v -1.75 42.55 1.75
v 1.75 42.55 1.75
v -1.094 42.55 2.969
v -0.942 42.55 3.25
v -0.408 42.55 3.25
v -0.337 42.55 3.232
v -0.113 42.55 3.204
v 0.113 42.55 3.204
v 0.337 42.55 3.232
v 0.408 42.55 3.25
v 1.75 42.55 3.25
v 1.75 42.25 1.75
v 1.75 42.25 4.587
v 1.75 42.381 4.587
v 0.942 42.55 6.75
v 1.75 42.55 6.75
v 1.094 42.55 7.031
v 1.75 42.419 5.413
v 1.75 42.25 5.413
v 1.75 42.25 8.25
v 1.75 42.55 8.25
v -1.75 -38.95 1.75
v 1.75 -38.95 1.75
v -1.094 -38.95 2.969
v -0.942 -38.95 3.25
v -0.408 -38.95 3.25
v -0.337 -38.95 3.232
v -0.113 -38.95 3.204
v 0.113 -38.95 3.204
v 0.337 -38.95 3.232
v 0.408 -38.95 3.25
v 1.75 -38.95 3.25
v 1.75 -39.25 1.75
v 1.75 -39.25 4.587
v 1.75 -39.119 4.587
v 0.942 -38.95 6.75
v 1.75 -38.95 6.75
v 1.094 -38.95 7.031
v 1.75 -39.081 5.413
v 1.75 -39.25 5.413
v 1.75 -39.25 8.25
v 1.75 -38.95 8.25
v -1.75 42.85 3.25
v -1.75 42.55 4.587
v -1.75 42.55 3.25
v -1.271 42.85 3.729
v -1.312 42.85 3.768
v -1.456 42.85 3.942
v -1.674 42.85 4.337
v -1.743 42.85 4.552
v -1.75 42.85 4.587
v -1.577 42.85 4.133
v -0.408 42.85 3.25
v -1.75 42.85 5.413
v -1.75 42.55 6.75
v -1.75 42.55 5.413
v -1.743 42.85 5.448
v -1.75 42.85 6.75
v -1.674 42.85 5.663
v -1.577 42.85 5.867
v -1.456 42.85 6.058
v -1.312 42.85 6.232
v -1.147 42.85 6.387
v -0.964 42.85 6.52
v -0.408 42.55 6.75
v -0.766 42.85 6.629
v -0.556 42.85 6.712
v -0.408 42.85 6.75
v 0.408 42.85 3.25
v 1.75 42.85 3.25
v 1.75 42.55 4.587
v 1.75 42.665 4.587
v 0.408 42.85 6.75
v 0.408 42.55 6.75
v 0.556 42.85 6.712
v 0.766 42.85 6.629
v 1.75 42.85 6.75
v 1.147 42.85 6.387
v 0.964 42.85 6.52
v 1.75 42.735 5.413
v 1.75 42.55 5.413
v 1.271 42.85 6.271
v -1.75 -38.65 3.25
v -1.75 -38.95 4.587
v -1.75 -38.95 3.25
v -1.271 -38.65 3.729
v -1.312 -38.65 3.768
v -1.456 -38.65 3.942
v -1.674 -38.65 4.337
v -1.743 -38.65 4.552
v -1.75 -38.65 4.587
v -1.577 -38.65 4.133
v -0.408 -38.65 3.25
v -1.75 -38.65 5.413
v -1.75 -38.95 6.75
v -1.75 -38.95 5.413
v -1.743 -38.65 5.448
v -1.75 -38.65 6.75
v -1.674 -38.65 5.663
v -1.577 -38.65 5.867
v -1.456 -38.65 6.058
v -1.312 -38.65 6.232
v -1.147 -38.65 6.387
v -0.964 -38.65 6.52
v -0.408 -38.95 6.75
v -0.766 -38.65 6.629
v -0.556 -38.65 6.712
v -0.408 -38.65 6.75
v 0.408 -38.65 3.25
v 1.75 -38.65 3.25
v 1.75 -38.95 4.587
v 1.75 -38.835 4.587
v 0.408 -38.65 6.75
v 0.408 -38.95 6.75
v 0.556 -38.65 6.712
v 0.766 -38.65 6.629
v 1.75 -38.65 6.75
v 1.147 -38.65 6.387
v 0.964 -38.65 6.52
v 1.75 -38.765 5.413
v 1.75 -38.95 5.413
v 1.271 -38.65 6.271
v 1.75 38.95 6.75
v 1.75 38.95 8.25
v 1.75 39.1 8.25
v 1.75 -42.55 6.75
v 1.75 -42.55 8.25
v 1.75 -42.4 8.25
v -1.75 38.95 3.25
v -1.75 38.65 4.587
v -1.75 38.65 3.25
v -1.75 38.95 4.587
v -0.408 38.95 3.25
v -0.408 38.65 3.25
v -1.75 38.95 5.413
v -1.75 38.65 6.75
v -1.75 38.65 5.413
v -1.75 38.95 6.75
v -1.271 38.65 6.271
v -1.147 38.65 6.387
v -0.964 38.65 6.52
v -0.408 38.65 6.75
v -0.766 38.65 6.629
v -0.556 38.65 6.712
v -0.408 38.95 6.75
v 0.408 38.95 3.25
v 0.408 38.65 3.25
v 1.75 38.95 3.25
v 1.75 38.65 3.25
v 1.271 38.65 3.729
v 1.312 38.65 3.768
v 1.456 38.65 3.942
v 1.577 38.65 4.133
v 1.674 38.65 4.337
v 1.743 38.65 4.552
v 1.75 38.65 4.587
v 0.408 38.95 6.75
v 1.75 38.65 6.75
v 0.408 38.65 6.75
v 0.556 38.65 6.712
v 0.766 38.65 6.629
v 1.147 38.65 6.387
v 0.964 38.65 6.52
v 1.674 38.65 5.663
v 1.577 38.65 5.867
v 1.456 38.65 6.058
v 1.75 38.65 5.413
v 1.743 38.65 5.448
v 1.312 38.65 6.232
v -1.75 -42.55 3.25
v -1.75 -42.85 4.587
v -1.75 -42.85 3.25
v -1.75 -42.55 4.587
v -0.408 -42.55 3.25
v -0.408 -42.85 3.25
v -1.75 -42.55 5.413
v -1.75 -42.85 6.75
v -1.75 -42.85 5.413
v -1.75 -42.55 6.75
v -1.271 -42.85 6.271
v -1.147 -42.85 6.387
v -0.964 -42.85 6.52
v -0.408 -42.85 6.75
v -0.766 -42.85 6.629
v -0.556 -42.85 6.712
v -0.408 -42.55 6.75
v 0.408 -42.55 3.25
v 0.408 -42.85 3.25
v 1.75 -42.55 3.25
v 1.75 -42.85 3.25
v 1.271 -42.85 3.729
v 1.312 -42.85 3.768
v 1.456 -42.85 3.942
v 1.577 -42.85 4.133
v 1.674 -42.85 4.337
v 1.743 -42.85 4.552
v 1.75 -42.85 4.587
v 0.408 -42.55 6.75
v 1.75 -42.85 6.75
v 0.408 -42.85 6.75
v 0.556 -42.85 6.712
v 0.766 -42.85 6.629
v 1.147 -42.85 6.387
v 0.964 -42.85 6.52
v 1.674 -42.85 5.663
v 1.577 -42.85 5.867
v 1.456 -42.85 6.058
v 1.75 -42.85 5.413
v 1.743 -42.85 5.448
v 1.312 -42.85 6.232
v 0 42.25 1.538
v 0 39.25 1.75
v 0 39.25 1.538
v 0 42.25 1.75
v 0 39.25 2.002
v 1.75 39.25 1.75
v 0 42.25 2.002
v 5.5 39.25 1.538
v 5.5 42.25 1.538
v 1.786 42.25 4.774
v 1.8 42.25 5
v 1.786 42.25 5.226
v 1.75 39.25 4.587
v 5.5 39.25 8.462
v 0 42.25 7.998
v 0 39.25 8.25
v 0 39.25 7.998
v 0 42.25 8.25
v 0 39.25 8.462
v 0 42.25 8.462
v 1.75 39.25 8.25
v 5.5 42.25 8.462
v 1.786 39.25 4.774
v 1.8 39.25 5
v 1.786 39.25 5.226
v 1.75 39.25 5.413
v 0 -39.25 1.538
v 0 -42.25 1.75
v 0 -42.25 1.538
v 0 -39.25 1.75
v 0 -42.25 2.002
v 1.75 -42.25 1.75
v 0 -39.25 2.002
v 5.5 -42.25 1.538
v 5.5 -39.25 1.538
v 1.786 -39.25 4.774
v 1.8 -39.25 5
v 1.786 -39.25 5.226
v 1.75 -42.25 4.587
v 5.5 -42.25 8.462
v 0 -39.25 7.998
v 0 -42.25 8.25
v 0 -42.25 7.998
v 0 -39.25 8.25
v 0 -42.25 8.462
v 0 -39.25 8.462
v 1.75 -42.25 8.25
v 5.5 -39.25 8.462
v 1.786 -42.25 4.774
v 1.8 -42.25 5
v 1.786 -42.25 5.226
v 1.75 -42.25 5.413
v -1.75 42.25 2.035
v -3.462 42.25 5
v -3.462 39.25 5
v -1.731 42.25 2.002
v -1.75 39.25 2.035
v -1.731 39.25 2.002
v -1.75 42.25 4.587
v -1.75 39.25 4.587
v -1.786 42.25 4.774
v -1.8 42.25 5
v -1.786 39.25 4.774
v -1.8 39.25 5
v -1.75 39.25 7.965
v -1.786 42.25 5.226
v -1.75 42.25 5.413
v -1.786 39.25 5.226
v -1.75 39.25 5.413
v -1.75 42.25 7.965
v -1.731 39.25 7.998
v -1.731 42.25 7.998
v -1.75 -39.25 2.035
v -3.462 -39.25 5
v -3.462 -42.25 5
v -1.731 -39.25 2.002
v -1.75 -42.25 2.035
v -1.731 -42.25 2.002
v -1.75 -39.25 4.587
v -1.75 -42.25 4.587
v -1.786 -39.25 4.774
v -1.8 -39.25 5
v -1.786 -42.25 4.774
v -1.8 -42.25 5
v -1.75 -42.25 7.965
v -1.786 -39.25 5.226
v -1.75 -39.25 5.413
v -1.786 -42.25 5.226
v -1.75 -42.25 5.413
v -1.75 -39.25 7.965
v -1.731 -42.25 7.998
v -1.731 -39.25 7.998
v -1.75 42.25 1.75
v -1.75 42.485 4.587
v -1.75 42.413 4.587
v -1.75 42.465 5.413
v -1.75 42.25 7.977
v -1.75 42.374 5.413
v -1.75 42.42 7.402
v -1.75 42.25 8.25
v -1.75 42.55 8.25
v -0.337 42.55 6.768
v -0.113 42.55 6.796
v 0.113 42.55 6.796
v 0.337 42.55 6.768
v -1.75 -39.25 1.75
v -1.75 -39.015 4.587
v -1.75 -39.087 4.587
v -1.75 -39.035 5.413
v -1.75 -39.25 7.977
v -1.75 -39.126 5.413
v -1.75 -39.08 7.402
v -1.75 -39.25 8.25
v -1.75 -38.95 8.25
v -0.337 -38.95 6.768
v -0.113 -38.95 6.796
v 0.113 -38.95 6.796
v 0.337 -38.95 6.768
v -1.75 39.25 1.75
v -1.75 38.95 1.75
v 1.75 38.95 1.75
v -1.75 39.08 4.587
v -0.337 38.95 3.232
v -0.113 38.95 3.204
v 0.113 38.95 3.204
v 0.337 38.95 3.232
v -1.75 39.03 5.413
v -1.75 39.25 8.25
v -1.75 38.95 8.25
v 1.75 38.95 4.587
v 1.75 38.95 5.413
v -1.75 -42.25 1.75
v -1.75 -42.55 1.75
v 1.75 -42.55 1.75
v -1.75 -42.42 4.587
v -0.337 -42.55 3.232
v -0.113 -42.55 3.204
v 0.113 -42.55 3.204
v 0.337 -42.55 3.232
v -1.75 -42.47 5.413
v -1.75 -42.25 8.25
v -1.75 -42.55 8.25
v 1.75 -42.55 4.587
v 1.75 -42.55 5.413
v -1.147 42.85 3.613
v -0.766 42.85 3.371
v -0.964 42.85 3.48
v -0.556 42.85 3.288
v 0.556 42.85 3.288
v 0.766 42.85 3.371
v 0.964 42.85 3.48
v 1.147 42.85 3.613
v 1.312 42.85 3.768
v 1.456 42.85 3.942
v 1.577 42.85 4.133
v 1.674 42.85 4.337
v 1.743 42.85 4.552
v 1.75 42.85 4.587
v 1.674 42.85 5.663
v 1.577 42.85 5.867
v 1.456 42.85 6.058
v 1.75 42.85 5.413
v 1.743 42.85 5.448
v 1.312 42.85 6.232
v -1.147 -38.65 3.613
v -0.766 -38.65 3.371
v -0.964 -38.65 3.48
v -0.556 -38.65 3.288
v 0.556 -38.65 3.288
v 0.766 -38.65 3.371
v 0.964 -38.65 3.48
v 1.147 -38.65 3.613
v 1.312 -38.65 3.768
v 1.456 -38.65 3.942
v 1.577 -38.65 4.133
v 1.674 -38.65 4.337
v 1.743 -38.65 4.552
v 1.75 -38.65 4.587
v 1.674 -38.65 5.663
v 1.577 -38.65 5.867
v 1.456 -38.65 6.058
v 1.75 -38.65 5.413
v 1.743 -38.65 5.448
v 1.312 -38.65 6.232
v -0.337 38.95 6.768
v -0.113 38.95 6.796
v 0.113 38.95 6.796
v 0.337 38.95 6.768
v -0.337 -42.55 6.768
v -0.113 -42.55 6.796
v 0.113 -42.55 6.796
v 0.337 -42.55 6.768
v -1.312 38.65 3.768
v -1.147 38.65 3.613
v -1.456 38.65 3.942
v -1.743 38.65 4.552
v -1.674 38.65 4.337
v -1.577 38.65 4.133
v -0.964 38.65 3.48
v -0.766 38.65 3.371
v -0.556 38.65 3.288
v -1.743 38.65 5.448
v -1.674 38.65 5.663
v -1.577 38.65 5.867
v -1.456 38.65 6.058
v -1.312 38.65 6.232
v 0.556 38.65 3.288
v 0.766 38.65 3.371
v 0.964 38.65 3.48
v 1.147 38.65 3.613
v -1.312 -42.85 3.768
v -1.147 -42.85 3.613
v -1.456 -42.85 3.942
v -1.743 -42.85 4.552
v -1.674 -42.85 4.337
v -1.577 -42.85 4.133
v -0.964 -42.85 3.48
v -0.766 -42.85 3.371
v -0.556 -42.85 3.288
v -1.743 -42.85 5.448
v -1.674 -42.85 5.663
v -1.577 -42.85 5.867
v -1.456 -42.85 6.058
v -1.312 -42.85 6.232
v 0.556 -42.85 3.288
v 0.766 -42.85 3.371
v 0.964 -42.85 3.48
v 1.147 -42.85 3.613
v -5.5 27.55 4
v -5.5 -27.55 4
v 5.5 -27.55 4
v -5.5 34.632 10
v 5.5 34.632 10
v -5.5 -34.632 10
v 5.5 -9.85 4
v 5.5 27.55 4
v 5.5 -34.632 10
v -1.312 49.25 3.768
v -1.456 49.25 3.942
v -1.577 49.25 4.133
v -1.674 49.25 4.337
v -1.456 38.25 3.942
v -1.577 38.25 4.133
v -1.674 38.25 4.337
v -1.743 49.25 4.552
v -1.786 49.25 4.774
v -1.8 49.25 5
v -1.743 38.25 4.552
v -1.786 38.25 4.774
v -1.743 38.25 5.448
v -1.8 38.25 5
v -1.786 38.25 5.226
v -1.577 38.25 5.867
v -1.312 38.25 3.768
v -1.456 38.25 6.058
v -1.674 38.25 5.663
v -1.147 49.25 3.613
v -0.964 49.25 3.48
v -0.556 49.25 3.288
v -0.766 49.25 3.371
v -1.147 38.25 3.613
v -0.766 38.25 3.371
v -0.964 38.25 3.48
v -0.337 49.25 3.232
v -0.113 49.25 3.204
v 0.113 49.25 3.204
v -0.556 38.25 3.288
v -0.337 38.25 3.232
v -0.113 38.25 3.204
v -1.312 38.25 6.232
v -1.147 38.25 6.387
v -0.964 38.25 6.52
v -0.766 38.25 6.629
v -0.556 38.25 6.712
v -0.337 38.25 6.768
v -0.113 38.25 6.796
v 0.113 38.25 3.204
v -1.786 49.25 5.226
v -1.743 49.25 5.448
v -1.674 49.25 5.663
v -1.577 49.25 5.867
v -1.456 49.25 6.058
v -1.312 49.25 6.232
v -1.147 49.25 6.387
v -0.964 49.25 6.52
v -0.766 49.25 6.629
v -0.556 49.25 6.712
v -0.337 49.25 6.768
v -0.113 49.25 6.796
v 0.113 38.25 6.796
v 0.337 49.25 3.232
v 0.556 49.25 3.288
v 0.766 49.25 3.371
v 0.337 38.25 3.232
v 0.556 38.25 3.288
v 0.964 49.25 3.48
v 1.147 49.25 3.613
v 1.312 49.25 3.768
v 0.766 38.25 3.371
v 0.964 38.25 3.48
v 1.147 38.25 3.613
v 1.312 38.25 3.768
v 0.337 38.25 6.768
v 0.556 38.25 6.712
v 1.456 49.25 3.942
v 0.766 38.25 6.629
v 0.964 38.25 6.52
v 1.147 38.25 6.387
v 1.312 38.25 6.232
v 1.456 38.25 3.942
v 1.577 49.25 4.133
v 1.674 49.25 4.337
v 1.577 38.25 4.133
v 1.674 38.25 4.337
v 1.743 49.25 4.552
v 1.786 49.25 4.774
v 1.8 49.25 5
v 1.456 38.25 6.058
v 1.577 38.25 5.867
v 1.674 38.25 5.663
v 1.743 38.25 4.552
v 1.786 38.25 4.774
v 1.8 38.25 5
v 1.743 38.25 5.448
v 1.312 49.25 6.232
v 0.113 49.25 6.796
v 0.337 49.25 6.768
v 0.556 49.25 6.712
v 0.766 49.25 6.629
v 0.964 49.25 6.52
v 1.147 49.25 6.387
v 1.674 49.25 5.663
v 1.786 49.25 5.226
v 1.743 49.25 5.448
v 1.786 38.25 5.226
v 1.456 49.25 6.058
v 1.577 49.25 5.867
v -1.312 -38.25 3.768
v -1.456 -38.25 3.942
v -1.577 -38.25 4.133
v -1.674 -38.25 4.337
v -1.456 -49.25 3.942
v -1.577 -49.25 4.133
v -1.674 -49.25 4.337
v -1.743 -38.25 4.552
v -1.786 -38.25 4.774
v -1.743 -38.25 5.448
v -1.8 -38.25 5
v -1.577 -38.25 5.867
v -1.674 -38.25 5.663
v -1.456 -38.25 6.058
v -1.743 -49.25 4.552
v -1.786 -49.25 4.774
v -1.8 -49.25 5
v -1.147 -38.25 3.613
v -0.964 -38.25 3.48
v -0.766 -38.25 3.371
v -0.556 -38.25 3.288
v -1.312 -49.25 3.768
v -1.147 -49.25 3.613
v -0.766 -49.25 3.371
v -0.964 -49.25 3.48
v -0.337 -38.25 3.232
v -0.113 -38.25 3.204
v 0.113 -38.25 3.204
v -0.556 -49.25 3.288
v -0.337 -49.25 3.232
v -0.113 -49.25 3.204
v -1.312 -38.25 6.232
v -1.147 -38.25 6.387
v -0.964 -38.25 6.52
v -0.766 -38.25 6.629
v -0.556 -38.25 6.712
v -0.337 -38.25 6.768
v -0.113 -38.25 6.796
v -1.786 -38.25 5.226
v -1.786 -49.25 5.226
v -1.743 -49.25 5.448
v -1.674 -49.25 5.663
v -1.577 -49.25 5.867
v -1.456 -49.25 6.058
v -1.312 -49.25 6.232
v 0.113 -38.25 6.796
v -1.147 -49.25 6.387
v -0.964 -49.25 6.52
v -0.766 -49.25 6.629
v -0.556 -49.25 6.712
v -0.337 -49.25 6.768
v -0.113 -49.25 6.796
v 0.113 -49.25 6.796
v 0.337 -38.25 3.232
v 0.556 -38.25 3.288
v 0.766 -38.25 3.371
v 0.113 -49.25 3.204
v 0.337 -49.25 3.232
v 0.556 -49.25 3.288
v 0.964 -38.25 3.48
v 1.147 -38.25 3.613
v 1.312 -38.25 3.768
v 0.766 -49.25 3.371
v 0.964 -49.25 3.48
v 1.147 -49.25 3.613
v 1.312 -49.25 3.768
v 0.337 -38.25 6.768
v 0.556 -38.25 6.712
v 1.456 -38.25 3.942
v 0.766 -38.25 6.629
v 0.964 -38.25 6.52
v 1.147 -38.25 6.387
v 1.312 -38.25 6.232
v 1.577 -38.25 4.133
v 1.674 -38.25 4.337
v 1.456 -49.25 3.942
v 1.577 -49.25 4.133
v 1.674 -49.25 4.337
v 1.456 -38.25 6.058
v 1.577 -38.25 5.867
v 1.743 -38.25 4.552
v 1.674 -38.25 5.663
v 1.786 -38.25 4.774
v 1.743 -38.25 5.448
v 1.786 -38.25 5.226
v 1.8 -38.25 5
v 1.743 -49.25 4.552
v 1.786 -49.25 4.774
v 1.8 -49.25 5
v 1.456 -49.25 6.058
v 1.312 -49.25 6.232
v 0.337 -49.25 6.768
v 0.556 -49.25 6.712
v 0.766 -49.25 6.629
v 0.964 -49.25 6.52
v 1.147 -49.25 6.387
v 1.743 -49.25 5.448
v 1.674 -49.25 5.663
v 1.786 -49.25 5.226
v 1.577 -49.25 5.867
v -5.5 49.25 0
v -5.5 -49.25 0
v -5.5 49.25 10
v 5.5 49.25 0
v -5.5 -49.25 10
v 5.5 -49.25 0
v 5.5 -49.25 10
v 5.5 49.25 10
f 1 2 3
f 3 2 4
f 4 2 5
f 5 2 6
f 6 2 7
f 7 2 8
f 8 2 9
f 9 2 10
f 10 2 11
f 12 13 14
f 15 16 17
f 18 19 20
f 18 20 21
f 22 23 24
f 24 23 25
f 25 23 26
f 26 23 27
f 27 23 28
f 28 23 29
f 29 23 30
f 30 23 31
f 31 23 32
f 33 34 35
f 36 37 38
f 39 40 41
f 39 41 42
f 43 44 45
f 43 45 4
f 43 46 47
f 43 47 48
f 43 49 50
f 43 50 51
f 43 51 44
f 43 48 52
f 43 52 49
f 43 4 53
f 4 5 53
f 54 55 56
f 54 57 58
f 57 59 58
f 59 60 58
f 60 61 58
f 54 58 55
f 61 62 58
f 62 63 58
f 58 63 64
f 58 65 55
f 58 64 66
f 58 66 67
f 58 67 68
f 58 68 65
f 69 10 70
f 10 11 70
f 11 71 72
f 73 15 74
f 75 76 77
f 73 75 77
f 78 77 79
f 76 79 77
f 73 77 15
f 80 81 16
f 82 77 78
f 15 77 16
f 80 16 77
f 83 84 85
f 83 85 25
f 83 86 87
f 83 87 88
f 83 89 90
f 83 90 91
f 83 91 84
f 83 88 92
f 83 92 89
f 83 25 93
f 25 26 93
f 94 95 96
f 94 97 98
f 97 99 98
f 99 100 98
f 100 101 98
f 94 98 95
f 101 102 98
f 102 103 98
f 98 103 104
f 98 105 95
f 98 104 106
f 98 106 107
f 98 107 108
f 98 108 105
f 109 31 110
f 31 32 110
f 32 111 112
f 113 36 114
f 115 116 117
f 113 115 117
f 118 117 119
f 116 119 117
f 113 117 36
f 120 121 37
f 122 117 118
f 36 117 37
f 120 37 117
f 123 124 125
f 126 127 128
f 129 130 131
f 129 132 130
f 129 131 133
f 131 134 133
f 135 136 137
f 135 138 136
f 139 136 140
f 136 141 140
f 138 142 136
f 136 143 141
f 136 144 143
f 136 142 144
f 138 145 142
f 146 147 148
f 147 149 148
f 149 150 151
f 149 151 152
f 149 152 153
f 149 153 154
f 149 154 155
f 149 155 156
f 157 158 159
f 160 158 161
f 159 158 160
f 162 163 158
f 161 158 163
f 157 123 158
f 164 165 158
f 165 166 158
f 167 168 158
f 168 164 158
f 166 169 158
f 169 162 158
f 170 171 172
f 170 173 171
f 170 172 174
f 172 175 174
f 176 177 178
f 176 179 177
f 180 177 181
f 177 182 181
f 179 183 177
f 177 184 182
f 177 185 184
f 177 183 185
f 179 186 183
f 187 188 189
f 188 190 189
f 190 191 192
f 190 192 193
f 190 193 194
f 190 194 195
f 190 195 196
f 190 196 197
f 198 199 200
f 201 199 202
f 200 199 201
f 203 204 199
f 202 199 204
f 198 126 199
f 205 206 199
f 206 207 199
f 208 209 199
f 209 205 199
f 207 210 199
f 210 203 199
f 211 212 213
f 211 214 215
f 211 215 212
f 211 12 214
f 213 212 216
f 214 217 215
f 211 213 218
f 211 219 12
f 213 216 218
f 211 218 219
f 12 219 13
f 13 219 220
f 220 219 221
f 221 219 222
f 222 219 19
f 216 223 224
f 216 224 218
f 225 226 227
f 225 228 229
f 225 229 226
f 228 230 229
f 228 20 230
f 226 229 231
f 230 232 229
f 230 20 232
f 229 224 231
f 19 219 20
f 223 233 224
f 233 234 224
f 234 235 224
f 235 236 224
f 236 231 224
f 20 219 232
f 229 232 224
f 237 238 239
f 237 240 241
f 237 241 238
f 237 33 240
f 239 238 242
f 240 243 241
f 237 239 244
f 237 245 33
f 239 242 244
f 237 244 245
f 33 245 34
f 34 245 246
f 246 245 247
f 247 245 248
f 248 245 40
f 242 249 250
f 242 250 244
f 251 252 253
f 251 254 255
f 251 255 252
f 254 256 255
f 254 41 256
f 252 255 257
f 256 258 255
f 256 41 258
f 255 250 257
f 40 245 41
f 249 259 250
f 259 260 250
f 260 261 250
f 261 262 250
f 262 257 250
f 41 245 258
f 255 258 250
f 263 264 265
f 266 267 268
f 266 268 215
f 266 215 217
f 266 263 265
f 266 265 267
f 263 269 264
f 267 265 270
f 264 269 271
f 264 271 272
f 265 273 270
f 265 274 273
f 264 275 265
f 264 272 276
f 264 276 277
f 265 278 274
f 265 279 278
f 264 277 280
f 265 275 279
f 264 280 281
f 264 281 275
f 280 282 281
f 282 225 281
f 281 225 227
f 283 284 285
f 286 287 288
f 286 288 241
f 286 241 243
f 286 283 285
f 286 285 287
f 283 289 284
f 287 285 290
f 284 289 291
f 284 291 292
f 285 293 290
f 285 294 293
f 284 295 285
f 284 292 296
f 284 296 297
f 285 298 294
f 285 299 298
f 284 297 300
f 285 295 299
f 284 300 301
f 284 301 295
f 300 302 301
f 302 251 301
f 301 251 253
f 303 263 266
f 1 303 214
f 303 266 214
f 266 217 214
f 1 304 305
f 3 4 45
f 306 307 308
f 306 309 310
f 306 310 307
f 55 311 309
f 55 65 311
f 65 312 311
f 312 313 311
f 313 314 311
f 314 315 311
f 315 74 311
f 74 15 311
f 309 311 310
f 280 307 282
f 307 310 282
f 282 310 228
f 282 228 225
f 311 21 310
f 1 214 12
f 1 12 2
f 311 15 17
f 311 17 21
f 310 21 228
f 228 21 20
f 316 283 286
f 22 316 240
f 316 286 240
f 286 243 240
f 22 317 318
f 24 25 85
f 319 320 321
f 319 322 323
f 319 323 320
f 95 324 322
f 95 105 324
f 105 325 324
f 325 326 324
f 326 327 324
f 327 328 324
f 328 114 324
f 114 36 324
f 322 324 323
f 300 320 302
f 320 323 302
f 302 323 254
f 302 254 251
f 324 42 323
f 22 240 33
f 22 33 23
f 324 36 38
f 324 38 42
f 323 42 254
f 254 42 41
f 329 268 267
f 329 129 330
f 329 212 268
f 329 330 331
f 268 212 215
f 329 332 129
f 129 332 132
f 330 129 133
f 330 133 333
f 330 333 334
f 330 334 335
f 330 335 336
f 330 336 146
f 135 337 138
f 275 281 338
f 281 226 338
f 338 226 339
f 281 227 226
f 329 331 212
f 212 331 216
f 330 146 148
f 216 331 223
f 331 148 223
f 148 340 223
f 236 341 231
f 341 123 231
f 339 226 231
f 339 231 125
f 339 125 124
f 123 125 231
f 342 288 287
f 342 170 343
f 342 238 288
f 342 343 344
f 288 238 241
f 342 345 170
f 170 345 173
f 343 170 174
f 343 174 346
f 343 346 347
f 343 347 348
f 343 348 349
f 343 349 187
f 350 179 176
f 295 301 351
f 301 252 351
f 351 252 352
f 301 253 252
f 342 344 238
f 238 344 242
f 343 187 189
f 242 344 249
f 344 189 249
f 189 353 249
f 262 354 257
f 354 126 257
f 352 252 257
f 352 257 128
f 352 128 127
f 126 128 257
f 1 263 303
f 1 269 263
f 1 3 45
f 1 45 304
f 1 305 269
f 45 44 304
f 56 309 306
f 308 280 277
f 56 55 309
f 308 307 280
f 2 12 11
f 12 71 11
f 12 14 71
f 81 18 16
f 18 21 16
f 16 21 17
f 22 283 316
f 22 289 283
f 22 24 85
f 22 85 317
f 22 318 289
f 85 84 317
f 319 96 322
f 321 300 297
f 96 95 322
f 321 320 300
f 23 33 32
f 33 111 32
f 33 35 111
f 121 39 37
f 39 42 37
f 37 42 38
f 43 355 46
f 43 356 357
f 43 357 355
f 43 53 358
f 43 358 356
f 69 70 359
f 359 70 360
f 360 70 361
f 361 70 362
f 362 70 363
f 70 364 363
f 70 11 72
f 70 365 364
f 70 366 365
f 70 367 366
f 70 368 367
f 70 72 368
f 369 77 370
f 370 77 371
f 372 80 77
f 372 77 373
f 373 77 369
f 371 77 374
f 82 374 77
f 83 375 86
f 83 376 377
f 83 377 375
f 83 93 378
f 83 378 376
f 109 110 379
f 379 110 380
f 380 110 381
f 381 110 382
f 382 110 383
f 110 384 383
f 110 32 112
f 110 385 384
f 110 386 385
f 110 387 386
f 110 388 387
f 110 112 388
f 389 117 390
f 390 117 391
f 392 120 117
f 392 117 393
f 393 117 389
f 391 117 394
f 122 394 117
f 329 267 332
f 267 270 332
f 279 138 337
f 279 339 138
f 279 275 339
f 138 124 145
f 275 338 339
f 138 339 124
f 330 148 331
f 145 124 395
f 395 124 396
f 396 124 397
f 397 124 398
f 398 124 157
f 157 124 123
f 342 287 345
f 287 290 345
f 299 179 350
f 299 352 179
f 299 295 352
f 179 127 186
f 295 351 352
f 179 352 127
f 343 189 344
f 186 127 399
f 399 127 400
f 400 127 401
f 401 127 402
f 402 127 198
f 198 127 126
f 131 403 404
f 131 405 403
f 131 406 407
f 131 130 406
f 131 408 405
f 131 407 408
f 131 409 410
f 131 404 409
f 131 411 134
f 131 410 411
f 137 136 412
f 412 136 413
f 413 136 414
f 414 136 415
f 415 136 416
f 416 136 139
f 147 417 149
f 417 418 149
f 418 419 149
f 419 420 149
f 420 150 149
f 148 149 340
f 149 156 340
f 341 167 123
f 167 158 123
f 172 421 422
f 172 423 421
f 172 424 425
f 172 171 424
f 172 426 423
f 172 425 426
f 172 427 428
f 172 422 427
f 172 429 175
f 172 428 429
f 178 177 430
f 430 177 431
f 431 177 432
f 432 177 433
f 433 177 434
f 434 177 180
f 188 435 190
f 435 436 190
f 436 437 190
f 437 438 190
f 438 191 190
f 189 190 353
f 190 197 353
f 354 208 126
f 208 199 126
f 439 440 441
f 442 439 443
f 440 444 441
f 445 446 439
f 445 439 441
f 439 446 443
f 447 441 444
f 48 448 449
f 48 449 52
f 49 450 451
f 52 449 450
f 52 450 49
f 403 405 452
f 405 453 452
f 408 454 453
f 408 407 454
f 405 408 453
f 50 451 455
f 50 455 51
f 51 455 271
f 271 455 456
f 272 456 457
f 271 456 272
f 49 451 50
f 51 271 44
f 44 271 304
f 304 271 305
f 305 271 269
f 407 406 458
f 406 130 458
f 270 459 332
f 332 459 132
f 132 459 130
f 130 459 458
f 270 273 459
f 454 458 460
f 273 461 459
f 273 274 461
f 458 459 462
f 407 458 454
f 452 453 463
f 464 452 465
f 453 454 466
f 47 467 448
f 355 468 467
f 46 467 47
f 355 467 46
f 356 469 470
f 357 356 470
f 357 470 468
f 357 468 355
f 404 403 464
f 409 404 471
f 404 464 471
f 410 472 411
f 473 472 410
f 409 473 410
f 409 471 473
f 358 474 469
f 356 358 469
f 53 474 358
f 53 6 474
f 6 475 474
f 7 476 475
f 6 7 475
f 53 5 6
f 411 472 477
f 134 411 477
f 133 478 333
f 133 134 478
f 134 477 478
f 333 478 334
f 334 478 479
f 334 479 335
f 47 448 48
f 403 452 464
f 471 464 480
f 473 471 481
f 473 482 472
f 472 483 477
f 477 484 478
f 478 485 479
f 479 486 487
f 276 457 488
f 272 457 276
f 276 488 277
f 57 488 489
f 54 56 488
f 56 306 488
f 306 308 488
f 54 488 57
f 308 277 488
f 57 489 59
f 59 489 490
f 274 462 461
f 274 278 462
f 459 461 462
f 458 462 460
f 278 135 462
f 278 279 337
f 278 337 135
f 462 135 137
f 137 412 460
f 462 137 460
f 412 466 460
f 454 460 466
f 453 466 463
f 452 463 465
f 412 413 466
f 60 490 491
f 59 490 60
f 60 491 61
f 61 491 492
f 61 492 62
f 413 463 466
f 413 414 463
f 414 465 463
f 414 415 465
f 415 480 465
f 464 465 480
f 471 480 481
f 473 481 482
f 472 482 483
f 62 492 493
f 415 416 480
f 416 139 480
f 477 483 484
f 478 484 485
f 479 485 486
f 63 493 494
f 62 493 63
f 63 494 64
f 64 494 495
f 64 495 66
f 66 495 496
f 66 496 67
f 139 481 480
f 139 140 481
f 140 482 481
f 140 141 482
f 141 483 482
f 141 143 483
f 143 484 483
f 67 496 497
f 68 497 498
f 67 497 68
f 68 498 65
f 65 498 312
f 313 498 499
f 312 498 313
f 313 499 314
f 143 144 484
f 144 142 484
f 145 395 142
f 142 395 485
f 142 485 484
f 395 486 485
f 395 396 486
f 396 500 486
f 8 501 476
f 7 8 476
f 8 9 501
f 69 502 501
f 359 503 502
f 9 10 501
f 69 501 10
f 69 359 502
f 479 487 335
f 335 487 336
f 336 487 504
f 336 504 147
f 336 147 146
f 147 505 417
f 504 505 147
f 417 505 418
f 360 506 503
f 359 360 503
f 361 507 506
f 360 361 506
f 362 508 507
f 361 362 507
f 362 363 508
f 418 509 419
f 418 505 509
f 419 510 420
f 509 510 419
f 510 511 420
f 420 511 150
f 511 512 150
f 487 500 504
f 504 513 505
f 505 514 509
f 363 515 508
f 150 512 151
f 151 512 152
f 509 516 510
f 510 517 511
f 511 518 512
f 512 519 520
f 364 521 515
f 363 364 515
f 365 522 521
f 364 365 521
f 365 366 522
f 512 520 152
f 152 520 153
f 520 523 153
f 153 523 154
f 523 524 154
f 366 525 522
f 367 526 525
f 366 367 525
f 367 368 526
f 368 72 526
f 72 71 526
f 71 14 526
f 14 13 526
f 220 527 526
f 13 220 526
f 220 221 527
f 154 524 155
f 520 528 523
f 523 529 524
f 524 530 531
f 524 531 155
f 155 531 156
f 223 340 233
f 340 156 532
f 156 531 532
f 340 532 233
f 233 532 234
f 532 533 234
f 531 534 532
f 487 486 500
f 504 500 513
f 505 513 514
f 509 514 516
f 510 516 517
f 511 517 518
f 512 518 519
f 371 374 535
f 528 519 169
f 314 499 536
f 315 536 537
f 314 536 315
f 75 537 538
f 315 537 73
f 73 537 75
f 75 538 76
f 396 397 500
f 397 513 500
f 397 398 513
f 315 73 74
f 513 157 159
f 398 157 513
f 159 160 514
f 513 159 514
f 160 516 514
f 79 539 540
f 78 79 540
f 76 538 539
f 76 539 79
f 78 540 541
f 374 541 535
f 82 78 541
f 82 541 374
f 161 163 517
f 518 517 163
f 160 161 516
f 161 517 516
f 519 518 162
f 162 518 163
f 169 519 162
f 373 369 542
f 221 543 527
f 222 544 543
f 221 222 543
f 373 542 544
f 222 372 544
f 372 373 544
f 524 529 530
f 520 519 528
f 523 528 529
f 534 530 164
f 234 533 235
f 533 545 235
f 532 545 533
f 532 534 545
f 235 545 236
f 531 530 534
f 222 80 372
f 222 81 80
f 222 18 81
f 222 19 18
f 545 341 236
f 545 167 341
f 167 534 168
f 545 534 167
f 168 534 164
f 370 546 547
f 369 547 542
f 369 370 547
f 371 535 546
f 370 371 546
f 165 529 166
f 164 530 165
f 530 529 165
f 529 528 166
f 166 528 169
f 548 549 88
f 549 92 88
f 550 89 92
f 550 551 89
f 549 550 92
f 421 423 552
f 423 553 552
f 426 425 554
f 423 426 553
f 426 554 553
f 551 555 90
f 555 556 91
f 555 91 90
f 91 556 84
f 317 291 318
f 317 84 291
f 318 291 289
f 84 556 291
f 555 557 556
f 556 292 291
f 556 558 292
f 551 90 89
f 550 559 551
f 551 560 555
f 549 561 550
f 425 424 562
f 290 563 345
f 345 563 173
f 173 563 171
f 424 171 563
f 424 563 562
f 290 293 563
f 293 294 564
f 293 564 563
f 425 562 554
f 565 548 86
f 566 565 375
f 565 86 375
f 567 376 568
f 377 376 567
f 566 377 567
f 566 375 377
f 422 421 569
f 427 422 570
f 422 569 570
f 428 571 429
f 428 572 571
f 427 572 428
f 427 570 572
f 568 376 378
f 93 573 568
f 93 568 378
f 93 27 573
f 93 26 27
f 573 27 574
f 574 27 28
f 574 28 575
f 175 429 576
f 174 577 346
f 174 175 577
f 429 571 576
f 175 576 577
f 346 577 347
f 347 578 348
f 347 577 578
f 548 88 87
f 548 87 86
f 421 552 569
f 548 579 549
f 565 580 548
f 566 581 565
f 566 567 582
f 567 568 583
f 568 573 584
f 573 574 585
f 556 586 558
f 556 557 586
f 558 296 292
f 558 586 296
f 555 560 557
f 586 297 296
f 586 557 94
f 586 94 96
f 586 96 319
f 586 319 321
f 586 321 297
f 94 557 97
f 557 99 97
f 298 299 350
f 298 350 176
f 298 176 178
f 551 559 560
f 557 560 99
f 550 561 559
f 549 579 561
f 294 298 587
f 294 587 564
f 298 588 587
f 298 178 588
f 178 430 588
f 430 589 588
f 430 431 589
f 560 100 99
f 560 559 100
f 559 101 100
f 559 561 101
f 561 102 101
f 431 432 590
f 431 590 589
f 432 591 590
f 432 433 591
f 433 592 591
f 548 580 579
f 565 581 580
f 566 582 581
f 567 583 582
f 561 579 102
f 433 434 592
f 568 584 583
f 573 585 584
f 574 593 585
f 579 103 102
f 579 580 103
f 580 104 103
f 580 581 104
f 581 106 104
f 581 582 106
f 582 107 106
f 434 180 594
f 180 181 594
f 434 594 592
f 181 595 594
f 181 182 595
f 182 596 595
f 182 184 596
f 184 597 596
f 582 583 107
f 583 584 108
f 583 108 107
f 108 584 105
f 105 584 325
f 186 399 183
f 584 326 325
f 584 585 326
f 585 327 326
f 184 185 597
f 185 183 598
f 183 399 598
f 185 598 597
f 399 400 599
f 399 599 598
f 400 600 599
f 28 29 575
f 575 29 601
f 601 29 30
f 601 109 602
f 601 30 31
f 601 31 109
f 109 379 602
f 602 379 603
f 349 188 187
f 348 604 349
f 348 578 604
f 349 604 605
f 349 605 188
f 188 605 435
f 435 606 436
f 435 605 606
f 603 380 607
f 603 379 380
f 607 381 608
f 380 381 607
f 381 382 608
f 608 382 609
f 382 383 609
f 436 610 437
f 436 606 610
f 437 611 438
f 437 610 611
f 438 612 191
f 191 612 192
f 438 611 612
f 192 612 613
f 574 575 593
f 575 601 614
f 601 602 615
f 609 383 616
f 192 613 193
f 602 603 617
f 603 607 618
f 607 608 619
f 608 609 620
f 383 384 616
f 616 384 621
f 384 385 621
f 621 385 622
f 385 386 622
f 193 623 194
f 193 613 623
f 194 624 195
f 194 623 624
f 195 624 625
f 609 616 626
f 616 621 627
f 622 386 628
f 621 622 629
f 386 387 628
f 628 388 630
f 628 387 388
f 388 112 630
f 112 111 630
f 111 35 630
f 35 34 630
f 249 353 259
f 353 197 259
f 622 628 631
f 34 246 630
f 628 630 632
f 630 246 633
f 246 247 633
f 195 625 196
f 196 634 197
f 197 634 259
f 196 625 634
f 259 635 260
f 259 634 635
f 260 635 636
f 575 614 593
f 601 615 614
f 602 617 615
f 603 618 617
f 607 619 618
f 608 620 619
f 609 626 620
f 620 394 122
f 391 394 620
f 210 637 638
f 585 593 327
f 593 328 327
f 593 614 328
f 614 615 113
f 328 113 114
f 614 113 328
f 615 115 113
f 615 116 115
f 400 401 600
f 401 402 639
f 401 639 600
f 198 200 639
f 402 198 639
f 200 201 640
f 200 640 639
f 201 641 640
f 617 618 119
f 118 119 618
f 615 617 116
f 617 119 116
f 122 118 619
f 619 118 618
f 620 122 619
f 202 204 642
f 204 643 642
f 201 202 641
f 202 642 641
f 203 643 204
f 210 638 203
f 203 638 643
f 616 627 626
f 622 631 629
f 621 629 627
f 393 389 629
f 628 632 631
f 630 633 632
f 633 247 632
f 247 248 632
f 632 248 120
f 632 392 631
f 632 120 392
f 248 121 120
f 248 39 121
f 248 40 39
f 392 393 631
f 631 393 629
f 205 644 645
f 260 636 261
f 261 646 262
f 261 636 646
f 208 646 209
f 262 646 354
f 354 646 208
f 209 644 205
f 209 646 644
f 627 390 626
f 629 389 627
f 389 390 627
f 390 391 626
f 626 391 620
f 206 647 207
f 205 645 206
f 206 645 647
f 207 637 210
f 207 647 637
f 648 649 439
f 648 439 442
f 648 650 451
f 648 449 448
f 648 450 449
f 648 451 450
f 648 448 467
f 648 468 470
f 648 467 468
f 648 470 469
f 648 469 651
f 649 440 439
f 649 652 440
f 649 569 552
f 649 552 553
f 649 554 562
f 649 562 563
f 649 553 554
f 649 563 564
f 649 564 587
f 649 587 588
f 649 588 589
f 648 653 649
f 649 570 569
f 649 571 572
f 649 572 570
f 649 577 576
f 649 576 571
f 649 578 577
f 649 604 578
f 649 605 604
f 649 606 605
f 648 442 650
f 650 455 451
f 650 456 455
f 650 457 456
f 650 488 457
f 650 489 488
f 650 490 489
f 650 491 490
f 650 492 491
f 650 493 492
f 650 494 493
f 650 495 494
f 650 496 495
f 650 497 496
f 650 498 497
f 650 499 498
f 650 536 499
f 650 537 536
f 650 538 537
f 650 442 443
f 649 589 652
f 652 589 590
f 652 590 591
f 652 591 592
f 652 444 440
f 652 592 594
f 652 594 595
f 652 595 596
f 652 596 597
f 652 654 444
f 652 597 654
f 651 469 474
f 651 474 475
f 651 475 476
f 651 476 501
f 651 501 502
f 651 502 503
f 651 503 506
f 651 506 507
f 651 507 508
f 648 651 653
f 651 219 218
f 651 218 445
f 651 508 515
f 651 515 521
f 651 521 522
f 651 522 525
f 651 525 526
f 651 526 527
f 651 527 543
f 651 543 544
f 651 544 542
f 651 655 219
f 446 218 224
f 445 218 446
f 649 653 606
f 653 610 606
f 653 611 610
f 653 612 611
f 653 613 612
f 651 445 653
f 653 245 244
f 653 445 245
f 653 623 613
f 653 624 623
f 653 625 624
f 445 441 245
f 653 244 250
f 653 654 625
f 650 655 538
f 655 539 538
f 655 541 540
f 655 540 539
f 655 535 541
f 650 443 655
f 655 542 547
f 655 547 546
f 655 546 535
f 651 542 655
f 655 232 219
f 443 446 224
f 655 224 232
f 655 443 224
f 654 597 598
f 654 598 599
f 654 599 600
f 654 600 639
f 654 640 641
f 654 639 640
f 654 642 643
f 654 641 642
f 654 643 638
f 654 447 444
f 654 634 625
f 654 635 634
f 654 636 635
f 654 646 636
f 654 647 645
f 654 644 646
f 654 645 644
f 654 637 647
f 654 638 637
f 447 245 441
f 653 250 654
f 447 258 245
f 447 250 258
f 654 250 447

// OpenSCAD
$fn = 50;

difference() {
	union() {
		translate(v = [0, 49.25, 0]) {
			rotate(a = [90, 0, 0]) {
				difference() {
					union() {
						translate(v = [-5.5, 0, 0]) {
							cube(size = [11.0, 10.0, 98.5]);
						}
					}
					union() {
						translate(v = [0, 5.0, 7.0]) {
							rotate(a = [0, 0, 0]) {
								difference() {
									union() {
										translate(v = [-1.75, -3.25, -0.3]) {
											cube(size = [3.5, 6.5, 0.3]);
										}
										translate(v = [-1.75, -1.75, -0.6]) {
											cube(size = [3.5, 3.5, 0.3]);
										}
										translate(v = [-1.75, -3.25, 3]) {
											cube(size = [3.5, 6.5, 0.3]);
										}
										translate(v = [-1.75, -1.75, 3.3]) {
											cube(size = [3.5, 3.5, 0.3]);
										}
										translate(v = [0.0, -3.4619999999999997, 0]) {
											cube(size = [20, 6.9239999999999995, 3]);
										}
										linear_extrude(height = 3) {
											polygon(points = [[3.4619999999999997, 0.0], [1.7310000000000003, 2.9981799479017264], [-1.7309999999999992, 2.9981799479017264], [-3.4619999999999997, 4.2397272186481365e-16], [-1.7310000000000014, -2.998179947901726], [1.7309999999999977, -2.9981799479017277]]);
										}
										translate(v = [-1.75, -3.25, -0.3]) {
											cube(size = [3.5, 6.5, 0.3]);
										}
										translate(v = [-1.75, -1.75, -0.6]) {
											cube(size = [3.5, 3.5, 0.3]);
										}
										translate(v = [-1.75, -3.25, 3]) {
											cube(size = [3.5, 6.5, 0.3]);
										}
										translate(v = [-1.75, -1.75, 3.3]) {
											cube(size = [3.5, 3.5, 0.3]);
										}
										translate(v = [-1.75, -3.25, -0.3]) {
											cube(size = [3.5, 6.5, 0.3]);
										}
										translate(v = [-1.75, -1.75, -0.6]) {
											cube(size = [3.5, 3.5, 0.3]);
										}
										translate(v = [-1.75, -3.25, 3]) {
											cube(size = [3.5, 6.5, 0.3]);
										}
										translate(v = [-1.75, -1.75, 3.3]) {
											cube(size = [3.5, 3.5, 0.3]);
										}
									}
									union();
								}
							}
						}
						translate(v = [0, 5.0, 88.5]) {
							rotate(a = [0, 0, 0]) {
								difference() {
									union() {
										translate(v = [-1.75, -3.25, -0.3]) {
											cube(size = [3.5, 6.5, 0.3]);
										}
										translate(v = [-1.75, -1.75, -0.6]) {
											cube(size = [3.5, 3.5, 0.3]);
										}
										translate(v = [-1.75, -3.25, 3]) {
											cube(size = [3.5, 6.5, 0.3]);
										}
										translate(v = [-1.75, -1.75, 3.3]) {
											cube(size = [3.5, 3.5, 0.3]);
										}
										translate(v = [0.0, -3.4619999999999997, 0]) {
											cube(size = [20, 6.9239999999999995, 3]);
										}
										linear_extrude(height = 3) {
											polygon(points = [[3.4619999999999997, 0.0], [1.7310000000000003, 2.9981799479017264], [-1.7309999999999992, 2.9981799479017264], [-3.4619999999999997, 4.2397272186481365e-16], [-1.7310000000000014, -2.998179947901726], [1.7309999999999977, -2.9981799479017277]]);
										}
										translate(v = [-1.75, -3.25, -0.3]) {
											cube(size = [3.5, 6.5, 0.3]);
										}
										translate(v = [-1.75, -1.75, -0.6]) {
											cube(size = [3.5, 3.5, 0.3]);
										}
										translate(v = [-1.75, -3.25, 3]) {
											cube(size = [3.5, 6.5, 0.3]);
										}
										translate(v = [-1.75, -1.75, 3.3]) {
											cube(size = [3.5, 3.5, 0.3]);
										}
										translate(v = [-1.75, -3.25, -0.3]) {
											cube(size = [3.5, 6.5, 0.3]);
										}
										translate(v = [-1.75, -1.75, -0.6]) {
											cube(size = [3.5, 3.5, 0.3]);
										}
										translate(v = [-1.75, -3.25, 3]) {
											cube(size = [3.5, 6.5, 0.3]);
										}
										translate(v = [-1.75, -1.75, 3.3]) {
											cube(size = [3.5, 3.5, 0.3]);
										}
									}
									union();
								}
							}
						}
						translate(v = [-5.6, 0, 0]) {
							rotate(a = [90, 0, 90]) {
								linear_extrude(height = 11.2) {
									polygon(points = [[10.1, 14.5], [10.1, 84.0], [4.0, 76.8], [4.0, 21.7]]);
								}
							}
						}
						translate(v = [0, 5.0, -0.1]) {
							cylinder(h = 11.1, r = 1.8);
						}
						translate(v = [0, 5.0, 87.5]) {
							cylinder(h = 11.1, r = 1.8);
						}
					}
				}
			}
		}
	}
	union();
}
